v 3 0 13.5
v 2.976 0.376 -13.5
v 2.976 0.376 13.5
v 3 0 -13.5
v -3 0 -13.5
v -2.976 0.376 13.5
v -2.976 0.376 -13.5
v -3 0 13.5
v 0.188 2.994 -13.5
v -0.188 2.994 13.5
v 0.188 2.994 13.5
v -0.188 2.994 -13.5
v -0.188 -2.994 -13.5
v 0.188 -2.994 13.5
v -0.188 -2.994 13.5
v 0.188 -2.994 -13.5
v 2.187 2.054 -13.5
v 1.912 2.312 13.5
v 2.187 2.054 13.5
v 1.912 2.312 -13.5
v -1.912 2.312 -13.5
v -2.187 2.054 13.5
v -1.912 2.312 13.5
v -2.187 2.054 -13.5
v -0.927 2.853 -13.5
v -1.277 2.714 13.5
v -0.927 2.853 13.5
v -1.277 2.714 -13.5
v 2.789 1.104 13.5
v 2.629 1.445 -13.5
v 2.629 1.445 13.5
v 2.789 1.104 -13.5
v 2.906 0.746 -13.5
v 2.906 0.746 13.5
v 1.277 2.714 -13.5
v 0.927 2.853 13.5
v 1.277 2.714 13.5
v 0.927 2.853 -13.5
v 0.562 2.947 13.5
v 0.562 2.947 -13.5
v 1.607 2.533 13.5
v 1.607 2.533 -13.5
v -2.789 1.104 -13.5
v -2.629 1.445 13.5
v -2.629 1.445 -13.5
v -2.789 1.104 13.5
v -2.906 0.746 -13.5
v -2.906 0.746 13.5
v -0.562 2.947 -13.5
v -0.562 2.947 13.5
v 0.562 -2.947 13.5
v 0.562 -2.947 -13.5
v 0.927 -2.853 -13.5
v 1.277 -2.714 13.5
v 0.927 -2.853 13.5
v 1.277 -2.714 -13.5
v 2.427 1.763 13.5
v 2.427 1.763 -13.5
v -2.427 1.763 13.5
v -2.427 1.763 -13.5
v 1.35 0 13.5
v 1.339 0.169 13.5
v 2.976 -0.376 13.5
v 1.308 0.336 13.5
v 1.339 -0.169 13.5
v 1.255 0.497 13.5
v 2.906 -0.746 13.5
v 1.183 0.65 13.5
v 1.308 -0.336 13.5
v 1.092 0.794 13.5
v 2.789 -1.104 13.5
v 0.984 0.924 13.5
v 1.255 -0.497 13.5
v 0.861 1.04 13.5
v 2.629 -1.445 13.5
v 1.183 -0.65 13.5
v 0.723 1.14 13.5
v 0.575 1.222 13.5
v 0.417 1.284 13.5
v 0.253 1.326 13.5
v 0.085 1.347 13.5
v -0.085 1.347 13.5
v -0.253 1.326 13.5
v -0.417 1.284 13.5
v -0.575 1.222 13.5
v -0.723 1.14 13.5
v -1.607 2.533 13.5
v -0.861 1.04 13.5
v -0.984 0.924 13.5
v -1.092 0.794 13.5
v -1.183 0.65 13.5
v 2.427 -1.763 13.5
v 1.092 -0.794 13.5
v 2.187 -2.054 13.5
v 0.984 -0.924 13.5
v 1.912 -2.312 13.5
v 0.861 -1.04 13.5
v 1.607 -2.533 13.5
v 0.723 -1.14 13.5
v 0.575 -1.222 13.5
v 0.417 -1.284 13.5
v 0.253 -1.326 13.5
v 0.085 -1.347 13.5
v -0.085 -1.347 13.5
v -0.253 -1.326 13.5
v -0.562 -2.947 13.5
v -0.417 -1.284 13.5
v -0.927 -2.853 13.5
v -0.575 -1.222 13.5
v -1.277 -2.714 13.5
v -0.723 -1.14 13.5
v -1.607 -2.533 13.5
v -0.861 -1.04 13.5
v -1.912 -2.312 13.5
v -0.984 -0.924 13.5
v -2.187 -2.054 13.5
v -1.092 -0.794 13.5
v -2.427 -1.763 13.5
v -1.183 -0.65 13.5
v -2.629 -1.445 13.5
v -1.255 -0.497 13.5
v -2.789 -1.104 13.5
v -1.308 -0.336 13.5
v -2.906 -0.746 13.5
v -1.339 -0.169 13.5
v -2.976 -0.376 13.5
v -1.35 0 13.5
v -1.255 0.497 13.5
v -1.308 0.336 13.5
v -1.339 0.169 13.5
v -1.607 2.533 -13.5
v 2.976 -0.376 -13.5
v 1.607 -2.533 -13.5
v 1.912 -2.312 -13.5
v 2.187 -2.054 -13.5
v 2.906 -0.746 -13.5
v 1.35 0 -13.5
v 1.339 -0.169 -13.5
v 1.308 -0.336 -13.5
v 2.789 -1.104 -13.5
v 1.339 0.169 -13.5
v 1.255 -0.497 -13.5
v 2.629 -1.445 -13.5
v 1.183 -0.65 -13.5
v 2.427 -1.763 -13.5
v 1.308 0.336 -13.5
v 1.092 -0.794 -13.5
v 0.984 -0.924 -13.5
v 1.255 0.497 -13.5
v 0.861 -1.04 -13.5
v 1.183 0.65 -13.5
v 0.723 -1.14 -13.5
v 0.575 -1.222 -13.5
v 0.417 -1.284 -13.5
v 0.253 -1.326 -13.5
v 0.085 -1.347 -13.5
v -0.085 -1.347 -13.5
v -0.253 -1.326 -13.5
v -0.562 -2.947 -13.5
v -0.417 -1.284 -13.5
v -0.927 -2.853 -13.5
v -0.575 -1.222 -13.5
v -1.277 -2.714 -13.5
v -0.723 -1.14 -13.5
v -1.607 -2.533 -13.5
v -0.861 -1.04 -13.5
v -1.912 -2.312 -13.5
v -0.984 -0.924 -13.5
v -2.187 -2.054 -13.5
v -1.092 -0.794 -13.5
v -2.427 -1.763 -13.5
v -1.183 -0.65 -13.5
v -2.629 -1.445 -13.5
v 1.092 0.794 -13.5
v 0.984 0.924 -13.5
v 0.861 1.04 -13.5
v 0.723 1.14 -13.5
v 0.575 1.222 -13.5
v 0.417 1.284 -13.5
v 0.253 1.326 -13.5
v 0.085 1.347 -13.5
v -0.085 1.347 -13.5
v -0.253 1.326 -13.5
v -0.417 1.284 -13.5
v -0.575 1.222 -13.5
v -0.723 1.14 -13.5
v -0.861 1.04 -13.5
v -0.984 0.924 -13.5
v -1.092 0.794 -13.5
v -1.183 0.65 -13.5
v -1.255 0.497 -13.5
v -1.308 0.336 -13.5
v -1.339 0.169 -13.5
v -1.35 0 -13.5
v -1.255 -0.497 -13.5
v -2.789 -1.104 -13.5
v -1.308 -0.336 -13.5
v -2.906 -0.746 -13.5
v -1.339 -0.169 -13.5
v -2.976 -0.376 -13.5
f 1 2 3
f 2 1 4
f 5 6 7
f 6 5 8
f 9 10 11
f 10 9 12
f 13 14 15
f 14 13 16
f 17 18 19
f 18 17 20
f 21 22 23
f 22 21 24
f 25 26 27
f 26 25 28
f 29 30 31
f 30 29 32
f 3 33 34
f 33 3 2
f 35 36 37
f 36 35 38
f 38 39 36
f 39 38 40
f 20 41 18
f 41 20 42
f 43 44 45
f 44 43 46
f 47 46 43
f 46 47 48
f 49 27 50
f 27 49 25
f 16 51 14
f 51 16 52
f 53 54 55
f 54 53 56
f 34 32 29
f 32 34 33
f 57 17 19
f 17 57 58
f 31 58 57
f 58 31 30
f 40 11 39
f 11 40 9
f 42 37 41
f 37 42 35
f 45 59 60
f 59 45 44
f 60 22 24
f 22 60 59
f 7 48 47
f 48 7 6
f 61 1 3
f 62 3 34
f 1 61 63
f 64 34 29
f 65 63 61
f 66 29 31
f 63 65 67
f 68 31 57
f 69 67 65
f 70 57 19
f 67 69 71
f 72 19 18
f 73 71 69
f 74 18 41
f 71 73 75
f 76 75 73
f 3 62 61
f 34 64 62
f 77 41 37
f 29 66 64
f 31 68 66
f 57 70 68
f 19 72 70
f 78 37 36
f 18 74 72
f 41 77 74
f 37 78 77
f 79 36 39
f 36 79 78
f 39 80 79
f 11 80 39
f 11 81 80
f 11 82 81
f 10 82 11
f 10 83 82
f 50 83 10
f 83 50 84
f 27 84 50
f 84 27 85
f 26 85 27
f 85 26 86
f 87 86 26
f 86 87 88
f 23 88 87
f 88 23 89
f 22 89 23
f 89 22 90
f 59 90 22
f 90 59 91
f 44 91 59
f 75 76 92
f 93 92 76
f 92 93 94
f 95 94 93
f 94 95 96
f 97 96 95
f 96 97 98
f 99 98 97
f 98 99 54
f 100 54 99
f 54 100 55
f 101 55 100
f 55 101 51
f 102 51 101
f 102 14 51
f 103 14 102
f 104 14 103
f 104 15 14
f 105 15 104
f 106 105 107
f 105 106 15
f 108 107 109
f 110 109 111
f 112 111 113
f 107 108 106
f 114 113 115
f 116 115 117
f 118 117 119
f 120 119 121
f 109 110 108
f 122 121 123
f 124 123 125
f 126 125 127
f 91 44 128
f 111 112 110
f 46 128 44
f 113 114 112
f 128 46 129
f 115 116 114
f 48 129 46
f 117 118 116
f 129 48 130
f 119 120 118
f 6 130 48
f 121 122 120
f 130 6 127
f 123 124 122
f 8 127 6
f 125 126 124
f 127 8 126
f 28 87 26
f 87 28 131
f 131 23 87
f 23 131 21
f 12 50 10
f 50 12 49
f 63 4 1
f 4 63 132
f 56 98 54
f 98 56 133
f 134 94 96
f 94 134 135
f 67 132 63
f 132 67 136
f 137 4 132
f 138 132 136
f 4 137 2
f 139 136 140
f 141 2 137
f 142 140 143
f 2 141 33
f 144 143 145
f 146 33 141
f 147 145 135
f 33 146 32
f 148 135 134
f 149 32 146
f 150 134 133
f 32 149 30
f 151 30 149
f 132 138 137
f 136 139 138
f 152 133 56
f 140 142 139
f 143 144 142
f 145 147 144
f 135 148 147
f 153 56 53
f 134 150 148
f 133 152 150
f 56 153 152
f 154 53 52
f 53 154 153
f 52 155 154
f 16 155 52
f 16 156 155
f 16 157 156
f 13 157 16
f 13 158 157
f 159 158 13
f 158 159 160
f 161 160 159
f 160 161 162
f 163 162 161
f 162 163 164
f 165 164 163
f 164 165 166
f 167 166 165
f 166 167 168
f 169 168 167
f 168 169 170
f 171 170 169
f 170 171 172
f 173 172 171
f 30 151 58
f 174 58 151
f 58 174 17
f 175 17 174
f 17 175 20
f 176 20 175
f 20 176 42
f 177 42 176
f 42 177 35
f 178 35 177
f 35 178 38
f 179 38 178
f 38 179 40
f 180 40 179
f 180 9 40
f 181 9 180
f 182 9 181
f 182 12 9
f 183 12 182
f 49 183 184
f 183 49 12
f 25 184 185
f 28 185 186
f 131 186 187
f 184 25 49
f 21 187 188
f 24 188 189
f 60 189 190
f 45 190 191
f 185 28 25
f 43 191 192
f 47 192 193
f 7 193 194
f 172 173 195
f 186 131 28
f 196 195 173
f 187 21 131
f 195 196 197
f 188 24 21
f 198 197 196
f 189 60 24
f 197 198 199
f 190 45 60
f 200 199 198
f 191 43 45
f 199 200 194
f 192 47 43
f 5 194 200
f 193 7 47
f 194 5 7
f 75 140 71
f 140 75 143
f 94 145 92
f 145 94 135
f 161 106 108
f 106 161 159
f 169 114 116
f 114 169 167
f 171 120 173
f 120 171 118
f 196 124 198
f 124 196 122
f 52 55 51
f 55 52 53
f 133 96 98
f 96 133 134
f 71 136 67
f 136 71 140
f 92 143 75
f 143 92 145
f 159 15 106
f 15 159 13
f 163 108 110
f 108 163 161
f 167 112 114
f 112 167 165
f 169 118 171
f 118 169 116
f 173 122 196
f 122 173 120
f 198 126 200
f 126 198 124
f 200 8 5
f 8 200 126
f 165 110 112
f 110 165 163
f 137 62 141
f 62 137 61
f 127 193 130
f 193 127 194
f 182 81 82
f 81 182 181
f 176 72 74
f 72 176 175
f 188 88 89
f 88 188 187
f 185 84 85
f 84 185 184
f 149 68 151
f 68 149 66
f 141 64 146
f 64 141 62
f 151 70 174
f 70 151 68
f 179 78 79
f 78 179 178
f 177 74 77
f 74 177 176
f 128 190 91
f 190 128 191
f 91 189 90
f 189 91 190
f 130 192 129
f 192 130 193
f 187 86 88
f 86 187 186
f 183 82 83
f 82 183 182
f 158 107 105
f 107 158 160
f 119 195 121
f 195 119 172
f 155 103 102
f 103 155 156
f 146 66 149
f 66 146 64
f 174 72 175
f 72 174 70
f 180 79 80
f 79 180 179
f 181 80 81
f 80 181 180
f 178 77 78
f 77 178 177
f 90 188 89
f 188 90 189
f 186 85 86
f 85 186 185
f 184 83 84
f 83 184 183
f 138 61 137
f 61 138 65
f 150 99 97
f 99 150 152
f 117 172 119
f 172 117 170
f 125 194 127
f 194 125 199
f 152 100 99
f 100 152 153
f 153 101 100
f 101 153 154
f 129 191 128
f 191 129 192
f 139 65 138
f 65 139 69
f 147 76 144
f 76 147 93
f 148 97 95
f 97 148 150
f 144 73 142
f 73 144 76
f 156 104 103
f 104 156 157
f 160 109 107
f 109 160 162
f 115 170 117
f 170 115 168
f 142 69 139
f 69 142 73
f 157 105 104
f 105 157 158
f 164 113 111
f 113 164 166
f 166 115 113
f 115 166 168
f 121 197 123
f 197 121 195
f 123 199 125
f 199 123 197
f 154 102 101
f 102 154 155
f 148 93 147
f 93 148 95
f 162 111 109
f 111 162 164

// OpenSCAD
$fn = 50;


difference() {
	union() {
		translate(v = [0, 0, -13.5000000000]) {
			cylinder(h = 27, r = 3.0000000000);
		}
	}
	union() {
		translate(v = [0, 0, -100.0000000000]) {
			cylinder(h = 200, r = 1.3500000000);
		}
	}
}
